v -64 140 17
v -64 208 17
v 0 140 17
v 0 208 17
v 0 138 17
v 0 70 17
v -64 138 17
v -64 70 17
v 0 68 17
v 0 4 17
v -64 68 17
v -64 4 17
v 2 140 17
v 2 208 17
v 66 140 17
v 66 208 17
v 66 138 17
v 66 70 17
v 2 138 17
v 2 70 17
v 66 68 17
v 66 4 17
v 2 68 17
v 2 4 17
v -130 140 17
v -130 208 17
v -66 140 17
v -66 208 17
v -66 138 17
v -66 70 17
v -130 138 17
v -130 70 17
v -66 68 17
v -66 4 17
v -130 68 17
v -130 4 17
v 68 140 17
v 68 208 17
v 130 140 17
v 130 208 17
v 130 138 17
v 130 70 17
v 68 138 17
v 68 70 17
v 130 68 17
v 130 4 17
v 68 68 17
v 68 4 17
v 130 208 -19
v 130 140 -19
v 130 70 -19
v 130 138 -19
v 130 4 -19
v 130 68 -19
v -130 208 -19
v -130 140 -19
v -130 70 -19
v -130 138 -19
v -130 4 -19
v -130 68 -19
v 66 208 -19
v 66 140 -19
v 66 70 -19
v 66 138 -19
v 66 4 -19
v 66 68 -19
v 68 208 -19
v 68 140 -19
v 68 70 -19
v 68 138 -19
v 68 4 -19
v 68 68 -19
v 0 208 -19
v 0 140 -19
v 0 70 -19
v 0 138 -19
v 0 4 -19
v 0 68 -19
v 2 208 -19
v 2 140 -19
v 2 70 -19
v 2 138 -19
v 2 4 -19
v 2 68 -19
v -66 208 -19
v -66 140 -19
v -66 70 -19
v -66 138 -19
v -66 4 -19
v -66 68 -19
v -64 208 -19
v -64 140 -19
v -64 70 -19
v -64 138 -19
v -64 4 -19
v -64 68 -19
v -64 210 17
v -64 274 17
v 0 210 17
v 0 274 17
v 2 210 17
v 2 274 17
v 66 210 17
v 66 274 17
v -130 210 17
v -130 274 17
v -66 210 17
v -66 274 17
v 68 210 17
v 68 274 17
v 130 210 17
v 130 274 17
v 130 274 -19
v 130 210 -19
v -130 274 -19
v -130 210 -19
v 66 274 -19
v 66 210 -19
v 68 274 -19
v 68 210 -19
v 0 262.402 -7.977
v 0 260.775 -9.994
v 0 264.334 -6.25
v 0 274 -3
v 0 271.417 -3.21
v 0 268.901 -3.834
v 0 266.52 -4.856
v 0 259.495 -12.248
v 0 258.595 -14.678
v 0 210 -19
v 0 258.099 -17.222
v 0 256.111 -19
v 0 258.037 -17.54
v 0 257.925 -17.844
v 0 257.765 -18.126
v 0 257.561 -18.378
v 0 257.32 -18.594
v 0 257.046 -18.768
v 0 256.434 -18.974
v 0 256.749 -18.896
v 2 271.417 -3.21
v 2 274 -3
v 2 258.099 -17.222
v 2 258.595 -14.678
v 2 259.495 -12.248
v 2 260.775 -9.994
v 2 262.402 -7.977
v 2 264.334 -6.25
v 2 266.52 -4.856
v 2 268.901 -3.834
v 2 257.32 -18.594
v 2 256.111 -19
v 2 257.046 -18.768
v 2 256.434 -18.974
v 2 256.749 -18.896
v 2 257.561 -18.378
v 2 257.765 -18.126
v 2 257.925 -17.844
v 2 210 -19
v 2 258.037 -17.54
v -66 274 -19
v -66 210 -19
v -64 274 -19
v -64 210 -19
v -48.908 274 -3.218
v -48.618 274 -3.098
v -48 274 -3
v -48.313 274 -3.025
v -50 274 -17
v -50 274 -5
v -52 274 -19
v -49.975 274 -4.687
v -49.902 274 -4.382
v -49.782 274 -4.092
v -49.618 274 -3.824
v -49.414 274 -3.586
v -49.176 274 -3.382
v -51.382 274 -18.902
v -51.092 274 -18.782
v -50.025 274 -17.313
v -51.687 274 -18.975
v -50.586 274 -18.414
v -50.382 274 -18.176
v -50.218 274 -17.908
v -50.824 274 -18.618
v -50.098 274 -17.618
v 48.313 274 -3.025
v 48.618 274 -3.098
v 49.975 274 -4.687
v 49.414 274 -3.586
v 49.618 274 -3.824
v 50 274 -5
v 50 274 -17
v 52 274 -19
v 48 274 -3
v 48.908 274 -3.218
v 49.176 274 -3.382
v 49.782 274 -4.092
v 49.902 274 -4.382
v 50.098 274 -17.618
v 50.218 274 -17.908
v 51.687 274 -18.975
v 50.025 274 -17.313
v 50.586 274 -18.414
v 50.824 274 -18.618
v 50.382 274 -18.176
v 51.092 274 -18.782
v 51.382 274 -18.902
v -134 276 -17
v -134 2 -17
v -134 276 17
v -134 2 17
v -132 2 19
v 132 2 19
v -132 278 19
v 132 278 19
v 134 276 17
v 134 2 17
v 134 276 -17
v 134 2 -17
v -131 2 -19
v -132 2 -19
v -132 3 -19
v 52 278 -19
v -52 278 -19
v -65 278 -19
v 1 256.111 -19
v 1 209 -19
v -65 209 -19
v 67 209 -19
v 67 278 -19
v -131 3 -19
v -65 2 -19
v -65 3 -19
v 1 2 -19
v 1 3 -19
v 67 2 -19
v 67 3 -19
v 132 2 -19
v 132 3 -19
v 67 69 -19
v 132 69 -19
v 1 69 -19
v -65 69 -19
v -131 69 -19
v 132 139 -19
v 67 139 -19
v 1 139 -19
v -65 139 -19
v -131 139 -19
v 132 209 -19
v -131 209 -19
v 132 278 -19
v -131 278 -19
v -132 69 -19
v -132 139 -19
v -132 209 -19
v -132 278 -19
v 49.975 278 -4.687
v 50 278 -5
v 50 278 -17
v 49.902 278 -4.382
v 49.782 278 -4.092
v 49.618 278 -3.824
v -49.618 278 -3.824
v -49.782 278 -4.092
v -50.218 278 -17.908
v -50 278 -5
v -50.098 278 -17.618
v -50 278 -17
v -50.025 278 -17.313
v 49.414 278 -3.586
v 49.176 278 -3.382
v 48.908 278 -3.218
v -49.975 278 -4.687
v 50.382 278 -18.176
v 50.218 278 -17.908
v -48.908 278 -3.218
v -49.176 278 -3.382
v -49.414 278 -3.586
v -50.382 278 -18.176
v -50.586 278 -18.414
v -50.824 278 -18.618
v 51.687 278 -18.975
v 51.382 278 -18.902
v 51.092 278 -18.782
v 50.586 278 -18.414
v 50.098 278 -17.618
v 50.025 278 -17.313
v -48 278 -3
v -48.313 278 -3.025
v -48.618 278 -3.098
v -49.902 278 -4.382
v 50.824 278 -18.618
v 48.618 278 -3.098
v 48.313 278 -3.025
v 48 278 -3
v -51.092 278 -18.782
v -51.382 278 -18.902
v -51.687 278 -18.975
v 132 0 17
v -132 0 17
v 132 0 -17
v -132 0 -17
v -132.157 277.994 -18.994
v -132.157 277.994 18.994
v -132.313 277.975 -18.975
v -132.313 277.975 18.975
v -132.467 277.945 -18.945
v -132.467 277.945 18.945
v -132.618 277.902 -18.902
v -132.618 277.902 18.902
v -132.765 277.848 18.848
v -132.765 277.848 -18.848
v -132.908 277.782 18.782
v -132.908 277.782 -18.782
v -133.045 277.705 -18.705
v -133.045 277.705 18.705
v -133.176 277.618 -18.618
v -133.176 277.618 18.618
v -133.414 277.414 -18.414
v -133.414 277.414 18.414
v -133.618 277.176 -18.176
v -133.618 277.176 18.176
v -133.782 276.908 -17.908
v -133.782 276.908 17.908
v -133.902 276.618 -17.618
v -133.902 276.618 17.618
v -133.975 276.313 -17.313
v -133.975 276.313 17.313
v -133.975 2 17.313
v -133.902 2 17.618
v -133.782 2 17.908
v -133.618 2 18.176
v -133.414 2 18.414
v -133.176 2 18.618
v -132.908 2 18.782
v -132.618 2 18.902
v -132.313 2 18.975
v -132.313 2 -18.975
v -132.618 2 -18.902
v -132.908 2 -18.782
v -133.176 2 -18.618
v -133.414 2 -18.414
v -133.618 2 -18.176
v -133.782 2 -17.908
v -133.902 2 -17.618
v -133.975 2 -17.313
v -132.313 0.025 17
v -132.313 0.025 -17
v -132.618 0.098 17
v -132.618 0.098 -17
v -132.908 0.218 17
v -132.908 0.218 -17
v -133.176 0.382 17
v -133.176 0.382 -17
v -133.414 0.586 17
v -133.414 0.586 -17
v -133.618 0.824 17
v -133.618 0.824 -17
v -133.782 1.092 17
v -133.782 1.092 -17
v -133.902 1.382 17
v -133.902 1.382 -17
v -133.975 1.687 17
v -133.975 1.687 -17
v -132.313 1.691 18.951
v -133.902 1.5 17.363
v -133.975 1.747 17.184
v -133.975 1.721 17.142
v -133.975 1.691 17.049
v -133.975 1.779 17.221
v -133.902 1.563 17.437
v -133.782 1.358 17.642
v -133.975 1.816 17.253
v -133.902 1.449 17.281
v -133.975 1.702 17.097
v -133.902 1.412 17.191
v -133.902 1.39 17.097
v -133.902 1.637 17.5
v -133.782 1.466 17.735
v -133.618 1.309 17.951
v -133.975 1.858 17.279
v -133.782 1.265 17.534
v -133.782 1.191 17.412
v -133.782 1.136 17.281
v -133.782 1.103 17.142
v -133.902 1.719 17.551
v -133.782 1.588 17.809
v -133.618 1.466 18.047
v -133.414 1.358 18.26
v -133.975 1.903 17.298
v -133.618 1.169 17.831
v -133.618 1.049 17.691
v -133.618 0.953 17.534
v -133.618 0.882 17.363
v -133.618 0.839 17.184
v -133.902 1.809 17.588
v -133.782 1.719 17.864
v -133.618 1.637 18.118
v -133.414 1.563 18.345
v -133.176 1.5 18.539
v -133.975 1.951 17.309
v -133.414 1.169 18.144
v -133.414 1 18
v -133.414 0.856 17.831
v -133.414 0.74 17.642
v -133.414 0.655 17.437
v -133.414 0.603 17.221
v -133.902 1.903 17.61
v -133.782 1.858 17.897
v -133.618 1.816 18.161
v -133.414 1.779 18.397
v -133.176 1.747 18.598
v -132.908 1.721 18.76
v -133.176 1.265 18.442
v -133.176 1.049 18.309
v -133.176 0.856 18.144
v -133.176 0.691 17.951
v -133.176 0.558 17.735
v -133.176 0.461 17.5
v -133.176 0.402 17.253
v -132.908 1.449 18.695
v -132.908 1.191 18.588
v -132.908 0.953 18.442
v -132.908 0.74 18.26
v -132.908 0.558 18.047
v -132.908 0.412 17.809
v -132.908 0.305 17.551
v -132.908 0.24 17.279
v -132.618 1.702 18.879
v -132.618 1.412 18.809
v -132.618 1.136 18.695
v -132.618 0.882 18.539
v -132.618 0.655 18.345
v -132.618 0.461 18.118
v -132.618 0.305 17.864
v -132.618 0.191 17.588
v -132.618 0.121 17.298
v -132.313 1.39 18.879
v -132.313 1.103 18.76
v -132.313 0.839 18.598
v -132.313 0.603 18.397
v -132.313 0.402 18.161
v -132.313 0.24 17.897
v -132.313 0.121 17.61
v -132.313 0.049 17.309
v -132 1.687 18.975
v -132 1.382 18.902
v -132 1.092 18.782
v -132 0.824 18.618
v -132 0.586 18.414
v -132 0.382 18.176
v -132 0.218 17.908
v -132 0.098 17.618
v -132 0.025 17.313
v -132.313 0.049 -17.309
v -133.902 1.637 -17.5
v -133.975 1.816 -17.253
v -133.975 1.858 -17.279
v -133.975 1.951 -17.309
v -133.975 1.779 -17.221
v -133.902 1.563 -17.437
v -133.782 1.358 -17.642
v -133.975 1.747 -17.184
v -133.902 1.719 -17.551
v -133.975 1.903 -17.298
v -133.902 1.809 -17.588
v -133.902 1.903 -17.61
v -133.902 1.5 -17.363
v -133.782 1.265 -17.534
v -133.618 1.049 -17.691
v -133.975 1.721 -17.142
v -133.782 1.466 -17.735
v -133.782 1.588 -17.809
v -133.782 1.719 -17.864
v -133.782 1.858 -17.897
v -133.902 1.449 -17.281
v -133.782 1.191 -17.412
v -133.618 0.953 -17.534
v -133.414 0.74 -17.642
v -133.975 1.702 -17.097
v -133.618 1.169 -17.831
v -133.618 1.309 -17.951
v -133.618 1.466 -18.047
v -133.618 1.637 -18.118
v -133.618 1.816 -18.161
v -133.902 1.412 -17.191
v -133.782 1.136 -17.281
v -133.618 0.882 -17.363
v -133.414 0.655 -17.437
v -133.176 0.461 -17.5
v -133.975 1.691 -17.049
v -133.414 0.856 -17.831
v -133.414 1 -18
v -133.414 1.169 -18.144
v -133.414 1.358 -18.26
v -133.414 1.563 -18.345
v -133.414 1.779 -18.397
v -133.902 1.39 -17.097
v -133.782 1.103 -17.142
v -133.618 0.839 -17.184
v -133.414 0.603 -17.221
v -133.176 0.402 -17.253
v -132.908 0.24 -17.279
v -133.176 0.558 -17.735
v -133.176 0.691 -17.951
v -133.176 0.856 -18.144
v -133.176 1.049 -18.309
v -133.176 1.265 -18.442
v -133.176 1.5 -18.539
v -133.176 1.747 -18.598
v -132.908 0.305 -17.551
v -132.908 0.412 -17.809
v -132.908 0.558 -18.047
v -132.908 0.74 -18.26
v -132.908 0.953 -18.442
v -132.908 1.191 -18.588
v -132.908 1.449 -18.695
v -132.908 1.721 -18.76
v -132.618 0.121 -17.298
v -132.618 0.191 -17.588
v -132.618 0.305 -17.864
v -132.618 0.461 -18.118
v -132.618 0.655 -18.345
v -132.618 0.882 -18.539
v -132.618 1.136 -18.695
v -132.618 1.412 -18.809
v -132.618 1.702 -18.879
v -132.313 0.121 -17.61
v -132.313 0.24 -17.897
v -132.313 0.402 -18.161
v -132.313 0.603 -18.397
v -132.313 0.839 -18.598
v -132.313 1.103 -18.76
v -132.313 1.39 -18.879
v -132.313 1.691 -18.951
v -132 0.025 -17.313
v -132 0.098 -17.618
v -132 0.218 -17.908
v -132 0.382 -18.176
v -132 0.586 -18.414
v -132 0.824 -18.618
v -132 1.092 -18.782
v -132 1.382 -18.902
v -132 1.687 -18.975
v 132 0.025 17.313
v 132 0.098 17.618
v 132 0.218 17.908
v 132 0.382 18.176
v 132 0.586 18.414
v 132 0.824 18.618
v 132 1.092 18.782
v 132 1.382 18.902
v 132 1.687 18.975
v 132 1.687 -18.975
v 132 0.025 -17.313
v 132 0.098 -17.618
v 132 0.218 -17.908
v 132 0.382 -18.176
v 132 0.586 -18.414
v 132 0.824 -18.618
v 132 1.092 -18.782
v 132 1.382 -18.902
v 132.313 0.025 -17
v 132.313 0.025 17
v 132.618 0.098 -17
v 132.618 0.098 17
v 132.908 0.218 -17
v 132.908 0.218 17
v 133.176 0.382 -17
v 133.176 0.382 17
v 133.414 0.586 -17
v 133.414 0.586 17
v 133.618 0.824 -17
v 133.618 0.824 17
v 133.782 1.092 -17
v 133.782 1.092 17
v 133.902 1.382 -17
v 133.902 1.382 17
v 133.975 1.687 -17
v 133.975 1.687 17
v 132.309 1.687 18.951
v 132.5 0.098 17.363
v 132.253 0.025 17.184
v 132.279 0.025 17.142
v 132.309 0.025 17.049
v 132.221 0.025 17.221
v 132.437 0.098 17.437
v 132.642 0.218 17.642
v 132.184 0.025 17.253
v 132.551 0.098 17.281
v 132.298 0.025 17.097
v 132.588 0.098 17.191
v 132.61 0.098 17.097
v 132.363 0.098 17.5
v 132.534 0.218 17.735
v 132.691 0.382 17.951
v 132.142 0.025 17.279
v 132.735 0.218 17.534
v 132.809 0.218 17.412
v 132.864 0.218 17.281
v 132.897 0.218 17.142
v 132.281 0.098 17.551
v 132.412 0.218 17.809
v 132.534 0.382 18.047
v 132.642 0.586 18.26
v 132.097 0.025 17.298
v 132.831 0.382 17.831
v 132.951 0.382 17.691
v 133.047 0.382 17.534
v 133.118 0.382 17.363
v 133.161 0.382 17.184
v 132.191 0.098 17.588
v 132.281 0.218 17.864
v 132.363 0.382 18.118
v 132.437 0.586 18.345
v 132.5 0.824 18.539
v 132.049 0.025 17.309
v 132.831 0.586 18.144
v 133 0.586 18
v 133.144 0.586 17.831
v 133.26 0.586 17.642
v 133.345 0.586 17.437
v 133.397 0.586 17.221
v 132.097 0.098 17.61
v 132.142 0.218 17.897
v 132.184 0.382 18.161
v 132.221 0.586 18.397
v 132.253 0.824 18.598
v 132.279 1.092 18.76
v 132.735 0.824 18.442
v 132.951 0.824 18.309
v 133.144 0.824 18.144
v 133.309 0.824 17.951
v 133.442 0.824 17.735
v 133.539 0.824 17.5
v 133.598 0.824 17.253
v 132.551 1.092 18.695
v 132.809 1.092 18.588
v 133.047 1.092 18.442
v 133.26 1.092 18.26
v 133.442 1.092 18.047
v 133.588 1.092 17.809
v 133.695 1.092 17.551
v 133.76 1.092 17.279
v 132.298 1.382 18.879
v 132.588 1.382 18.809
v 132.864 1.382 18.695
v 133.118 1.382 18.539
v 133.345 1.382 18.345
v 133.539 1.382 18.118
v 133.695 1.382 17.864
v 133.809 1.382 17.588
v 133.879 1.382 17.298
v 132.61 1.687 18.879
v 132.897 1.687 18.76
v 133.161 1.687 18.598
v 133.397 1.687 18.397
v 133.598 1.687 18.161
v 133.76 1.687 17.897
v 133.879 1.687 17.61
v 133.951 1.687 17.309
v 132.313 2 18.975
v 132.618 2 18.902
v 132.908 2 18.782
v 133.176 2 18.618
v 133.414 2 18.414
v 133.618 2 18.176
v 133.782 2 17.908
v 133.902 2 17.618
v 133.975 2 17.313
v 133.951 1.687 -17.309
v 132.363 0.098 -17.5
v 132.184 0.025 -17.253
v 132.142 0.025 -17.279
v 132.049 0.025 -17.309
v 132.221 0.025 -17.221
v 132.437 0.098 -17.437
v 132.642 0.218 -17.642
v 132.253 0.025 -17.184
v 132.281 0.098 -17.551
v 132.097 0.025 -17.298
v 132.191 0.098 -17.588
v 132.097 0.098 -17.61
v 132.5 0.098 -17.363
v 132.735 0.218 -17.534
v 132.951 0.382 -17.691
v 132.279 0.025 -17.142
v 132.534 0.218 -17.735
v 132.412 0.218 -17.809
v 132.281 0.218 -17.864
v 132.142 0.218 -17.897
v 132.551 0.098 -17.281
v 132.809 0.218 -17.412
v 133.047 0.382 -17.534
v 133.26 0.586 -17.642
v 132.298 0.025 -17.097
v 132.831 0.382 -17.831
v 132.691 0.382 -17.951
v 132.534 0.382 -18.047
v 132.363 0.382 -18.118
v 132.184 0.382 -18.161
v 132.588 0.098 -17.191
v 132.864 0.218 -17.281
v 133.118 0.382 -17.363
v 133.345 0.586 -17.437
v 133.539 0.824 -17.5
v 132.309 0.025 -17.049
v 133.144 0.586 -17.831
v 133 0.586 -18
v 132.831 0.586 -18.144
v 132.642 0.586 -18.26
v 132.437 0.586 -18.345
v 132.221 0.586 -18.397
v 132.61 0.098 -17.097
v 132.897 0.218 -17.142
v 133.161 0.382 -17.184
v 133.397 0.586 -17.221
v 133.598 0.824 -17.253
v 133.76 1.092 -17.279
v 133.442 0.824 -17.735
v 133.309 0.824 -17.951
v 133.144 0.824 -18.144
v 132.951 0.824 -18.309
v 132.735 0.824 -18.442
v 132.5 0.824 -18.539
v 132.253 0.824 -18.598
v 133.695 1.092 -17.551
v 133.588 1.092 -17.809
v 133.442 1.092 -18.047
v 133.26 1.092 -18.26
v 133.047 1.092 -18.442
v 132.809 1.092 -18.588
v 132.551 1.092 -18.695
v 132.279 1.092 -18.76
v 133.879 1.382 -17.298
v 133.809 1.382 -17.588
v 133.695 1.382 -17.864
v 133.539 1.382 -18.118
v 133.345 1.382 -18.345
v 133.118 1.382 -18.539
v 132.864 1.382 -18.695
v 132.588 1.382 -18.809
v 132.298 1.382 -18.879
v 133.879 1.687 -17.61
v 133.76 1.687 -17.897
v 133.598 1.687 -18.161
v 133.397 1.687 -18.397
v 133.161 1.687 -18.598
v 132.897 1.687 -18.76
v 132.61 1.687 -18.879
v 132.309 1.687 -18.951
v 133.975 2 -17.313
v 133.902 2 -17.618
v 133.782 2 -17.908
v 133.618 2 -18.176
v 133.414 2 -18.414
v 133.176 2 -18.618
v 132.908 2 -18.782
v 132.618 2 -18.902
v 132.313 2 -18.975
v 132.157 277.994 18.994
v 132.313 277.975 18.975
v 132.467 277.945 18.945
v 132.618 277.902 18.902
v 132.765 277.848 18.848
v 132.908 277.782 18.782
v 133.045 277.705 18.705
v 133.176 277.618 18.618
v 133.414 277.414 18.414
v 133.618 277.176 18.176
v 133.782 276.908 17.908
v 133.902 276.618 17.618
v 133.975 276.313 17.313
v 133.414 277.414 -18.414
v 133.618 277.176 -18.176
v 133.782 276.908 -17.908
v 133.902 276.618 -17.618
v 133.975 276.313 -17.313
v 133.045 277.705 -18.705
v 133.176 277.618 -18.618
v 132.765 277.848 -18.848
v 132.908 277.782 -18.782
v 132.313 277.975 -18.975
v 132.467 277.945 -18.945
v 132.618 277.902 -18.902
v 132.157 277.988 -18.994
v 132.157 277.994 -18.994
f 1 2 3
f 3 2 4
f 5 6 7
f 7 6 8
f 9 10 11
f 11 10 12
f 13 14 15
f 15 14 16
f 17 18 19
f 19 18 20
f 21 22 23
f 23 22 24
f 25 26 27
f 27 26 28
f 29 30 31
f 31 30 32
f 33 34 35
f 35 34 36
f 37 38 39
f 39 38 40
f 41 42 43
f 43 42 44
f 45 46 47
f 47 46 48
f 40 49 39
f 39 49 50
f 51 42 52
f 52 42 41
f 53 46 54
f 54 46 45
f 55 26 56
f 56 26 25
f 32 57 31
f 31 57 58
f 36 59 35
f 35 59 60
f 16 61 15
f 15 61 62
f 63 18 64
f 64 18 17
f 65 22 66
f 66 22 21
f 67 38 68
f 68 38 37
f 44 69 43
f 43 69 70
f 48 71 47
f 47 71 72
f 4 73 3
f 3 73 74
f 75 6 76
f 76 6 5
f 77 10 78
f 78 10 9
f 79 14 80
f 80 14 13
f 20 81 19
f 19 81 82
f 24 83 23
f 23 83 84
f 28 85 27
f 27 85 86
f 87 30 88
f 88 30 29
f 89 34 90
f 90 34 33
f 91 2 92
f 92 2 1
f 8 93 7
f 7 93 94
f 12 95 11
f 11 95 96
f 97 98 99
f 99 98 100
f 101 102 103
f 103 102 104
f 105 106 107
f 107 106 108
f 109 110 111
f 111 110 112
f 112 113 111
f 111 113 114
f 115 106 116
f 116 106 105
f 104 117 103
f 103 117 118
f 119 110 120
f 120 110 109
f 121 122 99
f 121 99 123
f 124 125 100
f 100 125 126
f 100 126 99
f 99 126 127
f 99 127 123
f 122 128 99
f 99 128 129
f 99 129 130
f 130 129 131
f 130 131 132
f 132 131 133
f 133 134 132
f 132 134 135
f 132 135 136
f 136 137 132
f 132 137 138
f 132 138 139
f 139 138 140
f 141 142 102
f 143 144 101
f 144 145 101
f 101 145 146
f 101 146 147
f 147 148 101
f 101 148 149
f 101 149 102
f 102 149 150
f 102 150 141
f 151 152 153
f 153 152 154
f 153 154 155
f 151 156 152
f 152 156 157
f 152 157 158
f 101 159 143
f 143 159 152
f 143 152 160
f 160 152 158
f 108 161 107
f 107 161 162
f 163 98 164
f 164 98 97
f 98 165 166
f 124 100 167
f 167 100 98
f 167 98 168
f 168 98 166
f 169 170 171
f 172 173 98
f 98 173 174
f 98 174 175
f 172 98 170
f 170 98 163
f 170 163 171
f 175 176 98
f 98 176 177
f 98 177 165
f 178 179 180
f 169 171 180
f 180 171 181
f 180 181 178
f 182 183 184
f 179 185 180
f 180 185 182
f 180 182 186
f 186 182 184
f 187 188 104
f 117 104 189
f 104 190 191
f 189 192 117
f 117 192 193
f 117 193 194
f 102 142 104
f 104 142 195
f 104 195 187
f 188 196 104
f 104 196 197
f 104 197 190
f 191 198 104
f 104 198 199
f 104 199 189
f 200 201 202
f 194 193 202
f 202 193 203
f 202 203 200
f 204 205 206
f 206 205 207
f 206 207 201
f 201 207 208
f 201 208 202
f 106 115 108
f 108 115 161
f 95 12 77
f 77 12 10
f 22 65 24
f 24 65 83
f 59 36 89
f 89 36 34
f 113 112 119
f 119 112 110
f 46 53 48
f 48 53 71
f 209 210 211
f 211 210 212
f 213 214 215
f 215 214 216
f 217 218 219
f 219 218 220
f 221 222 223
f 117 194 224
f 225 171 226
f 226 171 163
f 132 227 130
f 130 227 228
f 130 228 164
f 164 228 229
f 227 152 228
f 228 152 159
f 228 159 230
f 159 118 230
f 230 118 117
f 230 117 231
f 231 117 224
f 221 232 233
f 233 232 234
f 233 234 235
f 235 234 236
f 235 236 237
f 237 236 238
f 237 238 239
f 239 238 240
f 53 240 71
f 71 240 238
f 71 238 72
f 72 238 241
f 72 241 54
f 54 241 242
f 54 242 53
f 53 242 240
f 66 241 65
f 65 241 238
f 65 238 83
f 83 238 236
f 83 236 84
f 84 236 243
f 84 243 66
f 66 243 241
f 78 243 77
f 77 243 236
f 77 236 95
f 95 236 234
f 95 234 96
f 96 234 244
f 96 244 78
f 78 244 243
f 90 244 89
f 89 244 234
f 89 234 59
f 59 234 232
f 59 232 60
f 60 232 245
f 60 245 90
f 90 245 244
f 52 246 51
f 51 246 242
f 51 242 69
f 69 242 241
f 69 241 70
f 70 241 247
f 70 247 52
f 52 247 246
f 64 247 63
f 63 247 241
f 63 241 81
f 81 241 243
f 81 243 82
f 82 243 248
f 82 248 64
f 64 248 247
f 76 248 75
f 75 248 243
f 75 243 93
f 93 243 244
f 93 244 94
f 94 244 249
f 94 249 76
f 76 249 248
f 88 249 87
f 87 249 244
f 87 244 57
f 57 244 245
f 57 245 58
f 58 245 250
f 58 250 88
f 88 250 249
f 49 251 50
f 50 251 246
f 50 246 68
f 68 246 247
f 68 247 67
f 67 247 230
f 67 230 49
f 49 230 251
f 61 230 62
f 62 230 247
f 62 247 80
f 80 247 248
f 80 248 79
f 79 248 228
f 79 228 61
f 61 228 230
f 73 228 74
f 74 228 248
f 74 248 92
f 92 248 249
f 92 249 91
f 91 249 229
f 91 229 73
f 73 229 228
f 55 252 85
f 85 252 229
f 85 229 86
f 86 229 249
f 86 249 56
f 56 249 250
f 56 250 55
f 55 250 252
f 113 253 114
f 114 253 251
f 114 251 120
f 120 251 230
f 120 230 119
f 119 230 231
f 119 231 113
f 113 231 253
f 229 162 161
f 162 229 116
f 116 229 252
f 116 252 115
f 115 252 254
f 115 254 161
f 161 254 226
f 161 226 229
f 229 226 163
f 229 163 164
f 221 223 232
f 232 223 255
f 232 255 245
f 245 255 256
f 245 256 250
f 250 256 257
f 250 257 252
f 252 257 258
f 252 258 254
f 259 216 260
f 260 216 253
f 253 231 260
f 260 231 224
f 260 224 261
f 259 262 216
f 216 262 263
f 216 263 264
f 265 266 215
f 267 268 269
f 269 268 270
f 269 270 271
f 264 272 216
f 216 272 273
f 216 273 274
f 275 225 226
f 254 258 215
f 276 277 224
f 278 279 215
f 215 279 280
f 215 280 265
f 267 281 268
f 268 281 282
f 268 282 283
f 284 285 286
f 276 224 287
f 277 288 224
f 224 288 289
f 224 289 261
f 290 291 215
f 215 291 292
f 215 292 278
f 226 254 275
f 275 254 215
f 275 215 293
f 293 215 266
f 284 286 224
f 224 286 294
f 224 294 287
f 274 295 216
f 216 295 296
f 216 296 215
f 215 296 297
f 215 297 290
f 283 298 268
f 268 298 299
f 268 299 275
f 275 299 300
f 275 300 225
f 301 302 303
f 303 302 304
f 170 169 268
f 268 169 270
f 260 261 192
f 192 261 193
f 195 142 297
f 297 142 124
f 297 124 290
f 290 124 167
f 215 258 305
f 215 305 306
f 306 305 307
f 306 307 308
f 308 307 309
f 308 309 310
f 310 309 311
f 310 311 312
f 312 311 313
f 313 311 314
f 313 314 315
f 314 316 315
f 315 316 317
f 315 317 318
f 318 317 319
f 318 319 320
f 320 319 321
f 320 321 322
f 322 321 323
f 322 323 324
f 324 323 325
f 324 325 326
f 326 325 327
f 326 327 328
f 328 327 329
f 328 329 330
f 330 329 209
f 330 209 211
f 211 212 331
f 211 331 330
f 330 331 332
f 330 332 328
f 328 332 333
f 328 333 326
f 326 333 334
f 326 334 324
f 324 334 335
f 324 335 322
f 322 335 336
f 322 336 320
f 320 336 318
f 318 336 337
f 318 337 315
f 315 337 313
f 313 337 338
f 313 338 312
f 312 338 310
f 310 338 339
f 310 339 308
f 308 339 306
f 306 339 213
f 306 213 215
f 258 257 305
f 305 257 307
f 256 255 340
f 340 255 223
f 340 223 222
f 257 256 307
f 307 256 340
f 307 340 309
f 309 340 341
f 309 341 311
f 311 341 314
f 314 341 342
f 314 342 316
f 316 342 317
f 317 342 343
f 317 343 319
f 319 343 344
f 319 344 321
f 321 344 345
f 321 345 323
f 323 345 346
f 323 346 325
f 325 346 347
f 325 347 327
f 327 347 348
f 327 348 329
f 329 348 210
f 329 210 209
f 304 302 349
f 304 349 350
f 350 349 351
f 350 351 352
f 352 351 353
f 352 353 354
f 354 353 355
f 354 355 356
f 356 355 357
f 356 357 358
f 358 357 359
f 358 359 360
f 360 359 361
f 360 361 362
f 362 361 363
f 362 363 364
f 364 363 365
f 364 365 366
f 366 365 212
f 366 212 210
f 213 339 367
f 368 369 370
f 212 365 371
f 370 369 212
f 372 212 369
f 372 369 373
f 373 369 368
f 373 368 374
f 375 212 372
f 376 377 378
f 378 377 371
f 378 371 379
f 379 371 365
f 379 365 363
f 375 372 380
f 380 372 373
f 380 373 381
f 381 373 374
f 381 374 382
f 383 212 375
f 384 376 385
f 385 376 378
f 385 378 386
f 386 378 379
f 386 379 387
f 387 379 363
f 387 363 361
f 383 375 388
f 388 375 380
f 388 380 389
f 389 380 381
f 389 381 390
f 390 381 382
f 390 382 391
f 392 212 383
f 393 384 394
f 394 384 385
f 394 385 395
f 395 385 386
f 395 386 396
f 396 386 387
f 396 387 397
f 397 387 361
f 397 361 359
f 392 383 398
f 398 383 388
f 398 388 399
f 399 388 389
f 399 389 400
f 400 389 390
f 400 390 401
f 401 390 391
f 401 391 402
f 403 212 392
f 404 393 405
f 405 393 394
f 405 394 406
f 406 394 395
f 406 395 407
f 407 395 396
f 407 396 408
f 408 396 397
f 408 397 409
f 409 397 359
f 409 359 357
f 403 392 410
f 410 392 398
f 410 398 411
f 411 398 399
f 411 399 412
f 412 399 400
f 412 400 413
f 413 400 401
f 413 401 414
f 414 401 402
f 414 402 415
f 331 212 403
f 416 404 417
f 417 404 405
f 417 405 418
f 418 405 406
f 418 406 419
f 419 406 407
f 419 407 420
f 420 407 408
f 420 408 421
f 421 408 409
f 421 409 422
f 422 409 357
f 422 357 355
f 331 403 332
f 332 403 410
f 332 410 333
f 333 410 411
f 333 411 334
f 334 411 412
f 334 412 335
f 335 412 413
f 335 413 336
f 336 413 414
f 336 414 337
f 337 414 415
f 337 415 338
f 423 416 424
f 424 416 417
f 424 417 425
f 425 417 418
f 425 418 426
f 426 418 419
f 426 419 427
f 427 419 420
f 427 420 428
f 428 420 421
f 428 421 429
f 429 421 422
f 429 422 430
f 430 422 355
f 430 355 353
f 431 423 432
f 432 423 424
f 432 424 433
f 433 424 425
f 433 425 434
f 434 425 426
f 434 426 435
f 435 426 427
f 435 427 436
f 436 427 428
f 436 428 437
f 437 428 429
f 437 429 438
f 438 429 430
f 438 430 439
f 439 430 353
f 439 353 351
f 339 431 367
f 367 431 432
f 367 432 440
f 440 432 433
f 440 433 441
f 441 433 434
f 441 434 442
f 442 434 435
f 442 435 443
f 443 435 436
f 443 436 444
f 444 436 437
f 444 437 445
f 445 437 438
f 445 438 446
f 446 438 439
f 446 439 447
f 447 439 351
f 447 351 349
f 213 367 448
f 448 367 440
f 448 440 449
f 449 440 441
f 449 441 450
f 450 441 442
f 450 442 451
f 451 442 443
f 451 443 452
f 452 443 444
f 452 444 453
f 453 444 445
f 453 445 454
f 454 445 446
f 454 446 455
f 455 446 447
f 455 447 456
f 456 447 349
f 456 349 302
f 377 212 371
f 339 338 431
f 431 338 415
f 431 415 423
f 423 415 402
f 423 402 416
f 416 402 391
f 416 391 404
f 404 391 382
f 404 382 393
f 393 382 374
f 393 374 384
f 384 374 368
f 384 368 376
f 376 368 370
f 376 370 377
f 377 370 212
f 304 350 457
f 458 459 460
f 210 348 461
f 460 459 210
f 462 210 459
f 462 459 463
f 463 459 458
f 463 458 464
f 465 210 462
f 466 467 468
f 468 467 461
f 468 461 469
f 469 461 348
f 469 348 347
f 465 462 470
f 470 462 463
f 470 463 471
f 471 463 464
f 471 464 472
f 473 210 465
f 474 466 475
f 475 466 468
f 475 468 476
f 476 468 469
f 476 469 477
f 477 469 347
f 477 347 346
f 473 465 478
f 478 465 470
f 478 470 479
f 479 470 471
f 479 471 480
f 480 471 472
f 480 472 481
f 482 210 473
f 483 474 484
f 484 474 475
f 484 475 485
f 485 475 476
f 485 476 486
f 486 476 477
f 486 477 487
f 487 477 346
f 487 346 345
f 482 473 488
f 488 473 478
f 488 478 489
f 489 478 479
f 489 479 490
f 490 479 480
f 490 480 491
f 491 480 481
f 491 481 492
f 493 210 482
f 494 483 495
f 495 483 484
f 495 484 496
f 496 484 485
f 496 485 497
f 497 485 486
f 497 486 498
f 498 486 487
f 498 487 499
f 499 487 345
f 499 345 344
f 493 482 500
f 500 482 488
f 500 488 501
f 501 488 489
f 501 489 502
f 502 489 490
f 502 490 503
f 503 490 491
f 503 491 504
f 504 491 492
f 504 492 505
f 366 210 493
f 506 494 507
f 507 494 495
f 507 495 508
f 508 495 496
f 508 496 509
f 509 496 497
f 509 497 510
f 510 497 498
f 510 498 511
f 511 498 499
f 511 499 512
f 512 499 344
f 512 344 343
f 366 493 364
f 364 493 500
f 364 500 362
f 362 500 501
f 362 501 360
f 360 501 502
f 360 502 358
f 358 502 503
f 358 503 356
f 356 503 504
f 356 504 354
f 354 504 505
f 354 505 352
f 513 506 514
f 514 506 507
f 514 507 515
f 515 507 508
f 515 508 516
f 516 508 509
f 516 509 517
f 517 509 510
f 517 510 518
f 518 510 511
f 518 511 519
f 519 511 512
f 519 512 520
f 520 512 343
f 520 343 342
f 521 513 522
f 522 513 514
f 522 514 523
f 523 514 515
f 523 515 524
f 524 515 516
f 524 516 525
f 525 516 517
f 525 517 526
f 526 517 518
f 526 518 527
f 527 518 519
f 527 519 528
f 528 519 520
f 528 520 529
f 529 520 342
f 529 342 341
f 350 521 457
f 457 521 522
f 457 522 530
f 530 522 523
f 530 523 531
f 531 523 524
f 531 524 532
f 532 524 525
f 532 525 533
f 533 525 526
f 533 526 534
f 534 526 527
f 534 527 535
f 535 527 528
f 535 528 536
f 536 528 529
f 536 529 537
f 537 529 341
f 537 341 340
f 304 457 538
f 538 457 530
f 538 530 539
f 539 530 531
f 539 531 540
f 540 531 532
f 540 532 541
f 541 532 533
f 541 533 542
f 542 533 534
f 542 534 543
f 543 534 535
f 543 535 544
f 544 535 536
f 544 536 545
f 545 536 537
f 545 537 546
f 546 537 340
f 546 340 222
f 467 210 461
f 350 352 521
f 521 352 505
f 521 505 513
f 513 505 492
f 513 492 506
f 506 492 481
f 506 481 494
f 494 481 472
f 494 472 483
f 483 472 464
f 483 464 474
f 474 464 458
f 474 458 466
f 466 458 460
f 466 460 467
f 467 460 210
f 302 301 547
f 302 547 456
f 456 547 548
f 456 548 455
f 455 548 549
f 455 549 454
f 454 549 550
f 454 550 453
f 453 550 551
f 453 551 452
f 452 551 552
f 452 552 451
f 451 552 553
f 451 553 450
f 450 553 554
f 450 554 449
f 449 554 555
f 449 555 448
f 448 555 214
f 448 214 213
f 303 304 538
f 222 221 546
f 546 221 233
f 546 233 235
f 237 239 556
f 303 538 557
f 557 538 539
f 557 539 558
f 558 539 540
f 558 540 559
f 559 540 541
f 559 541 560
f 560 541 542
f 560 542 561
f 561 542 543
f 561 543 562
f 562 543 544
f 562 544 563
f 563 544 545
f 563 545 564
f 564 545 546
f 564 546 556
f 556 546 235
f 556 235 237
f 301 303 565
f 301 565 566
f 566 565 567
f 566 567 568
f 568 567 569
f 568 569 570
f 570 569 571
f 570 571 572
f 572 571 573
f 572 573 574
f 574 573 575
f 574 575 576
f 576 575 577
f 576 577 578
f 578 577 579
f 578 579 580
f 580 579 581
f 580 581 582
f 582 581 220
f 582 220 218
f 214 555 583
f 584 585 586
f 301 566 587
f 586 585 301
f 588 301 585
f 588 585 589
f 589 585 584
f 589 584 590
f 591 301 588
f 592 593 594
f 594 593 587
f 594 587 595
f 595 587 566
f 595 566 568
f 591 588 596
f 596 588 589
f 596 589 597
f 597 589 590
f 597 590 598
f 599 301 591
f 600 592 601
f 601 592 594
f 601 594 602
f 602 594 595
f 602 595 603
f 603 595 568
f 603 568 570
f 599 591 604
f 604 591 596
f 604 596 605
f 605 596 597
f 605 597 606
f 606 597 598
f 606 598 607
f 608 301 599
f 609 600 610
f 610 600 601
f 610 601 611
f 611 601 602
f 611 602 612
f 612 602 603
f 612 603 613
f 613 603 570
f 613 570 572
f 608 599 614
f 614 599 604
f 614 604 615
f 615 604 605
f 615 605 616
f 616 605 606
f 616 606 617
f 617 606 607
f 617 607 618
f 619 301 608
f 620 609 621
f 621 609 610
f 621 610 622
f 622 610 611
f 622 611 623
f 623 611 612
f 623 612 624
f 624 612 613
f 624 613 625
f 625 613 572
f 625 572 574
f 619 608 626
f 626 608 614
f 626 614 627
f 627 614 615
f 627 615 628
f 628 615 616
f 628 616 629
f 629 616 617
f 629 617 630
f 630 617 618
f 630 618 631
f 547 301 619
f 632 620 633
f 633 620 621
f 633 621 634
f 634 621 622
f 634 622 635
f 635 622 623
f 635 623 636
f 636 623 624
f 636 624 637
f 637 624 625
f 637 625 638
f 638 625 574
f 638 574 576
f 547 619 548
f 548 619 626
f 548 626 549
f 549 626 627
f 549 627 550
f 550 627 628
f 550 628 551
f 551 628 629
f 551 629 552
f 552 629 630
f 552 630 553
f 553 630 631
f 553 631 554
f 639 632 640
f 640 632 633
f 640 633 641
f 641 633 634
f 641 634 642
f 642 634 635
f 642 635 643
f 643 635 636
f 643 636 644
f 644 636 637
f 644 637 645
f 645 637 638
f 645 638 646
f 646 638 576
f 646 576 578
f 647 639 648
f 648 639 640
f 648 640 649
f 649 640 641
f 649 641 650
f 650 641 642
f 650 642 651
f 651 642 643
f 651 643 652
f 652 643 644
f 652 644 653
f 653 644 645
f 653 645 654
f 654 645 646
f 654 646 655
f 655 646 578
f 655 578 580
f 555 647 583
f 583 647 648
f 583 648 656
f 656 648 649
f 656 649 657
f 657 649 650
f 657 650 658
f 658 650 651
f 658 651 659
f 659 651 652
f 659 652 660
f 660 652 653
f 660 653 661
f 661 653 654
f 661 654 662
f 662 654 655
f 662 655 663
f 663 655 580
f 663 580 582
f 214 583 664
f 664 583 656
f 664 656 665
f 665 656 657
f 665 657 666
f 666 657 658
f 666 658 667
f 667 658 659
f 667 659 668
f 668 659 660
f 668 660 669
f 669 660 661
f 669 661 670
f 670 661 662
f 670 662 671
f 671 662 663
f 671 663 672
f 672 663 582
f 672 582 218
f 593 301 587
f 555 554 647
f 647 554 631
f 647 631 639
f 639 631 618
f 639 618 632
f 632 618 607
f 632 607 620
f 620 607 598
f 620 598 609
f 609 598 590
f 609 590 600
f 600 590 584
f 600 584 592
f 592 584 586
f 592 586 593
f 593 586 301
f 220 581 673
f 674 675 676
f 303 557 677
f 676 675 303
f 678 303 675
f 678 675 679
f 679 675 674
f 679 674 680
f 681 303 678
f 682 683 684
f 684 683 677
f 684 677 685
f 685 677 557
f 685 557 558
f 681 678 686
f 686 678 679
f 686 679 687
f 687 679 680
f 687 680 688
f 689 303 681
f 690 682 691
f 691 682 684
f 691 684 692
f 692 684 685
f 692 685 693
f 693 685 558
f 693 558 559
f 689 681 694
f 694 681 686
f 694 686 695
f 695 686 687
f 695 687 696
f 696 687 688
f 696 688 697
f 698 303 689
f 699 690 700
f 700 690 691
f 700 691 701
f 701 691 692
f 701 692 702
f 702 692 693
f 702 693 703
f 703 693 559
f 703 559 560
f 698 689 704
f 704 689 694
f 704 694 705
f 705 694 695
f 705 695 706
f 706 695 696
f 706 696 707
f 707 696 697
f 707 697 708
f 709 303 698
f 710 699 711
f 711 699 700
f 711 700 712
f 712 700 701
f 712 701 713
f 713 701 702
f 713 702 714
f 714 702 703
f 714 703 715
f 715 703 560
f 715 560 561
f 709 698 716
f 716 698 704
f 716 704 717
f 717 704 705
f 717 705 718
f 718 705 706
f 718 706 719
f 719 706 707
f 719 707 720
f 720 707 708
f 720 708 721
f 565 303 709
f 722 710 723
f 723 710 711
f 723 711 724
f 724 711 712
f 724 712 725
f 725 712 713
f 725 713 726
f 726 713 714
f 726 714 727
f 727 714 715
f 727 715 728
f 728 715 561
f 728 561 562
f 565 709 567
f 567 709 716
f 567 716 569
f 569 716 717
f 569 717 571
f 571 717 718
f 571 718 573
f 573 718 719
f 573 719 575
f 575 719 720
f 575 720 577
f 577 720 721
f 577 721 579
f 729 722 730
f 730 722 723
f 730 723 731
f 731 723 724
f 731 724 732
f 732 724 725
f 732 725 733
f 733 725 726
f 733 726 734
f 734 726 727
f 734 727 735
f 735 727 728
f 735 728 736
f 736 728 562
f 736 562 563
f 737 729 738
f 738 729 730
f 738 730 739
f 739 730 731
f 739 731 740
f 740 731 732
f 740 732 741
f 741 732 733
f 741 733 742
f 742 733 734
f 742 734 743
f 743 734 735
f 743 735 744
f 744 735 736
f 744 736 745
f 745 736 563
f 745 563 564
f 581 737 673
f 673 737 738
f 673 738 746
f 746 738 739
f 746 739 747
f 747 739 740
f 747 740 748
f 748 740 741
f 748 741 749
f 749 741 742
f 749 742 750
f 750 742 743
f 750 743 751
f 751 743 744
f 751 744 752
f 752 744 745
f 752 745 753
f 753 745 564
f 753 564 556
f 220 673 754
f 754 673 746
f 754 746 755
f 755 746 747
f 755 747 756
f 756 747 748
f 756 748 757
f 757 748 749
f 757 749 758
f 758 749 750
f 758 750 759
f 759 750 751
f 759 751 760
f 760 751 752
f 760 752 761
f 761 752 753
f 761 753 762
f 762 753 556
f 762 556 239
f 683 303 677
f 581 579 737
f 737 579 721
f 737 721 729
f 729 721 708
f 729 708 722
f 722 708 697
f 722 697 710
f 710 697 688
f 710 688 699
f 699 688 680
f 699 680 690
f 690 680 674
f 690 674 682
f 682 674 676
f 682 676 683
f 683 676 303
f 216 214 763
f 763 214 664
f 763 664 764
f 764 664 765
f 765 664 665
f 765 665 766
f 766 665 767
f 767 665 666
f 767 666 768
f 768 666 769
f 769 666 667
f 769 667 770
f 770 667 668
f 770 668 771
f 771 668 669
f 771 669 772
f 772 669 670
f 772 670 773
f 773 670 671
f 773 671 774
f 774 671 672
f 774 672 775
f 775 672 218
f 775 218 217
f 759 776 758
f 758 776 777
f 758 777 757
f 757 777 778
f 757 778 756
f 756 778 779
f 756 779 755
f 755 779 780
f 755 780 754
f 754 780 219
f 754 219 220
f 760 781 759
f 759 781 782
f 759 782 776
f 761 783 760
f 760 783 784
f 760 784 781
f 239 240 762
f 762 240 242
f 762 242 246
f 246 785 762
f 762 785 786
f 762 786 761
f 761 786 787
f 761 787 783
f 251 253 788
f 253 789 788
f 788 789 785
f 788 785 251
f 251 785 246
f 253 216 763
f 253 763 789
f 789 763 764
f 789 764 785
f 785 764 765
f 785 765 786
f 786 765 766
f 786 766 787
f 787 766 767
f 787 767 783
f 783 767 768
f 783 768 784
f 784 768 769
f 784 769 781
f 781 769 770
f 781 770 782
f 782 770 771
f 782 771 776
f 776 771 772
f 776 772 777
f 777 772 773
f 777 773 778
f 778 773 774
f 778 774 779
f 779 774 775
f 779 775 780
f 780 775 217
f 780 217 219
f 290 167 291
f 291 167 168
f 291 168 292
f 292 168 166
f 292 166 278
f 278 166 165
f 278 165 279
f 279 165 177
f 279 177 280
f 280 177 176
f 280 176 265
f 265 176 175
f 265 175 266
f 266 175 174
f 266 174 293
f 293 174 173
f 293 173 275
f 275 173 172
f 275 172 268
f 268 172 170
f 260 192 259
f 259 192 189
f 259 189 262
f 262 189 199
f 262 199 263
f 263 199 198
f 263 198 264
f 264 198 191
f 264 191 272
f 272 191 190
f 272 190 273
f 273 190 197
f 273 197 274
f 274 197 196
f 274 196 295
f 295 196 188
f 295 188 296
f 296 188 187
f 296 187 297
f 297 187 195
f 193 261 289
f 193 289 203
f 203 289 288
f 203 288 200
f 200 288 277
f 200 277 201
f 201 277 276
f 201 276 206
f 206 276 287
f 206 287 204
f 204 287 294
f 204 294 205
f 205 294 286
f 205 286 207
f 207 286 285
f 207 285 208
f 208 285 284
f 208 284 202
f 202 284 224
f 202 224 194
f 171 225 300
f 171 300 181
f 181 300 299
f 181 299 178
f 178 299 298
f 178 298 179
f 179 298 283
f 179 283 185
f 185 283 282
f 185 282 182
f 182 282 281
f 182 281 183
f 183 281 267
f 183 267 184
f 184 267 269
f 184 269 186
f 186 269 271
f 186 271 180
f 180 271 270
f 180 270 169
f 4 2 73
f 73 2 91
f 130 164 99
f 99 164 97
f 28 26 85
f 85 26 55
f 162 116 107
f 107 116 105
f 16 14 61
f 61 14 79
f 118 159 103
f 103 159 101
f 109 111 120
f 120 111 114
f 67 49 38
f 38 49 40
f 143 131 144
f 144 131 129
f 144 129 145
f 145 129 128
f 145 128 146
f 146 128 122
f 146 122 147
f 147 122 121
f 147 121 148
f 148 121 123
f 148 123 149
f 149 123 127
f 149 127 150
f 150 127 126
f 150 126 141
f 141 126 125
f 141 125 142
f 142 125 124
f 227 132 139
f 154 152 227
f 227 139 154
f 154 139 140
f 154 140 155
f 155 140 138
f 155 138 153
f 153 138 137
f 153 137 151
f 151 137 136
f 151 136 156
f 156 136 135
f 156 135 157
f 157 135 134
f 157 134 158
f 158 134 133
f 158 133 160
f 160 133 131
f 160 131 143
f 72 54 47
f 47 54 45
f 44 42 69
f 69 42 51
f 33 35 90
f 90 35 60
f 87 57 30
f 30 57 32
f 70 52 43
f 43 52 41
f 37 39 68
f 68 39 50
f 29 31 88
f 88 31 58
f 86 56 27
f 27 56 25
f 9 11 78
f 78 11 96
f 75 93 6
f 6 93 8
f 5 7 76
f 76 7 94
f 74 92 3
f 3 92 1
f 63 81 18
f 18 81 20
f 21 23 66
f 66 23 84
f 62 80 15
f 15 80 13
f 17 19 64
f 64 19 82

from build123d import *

# Parameters (mm, degrees)
SKETCH_1_W             = 268
SKETCH_1_H             = 38
EXTRUDE_1_DEPTH        = 278
SKETCH_2_W             = 260
SKETCH_2_H             = 270
CUT_EXTRUDE_1_DEPTH    = 36
CUT_EXTRUDE_2_REACH    = 311.194
SKETCH_3_W             = 100
SKETCH_3_H             = 16
FILLET_1_R             = 2
SKETCH_4_W             = 2
SKETCH_4_H             = 270
EXTRUDE_2_DEPTH        = 36
PATTERN_LINEAR_1_COUNT = 3
PATTERN_LINEAR_1_PITCH = 66
SKETCH_5_W             = 260
SKETCH_5_H             = 2
EXTRUDE_3_DEPTH        = 36
CUT_EXTRUDE_4_DEPTH    = 2
FILLET_2_R             = 2
PATTERN_LINEAR_2_COUNT = 3
PATTERN_LINEAR_2_PITCH = 70


with BuildPart() as part:
    # 草图1 → 凸台-拉伸1 (new body)
    with BuildSketch(Plane(origin=(0, 0, 0), x_dir=(1, 0, 0), z_dir=(0, 1, 0))):
        Rectangle(SKETCH_1_W, SKETCH_1_H)
    extrude(amount=EXTRUDE_1_DEPTH)

    # 草图2 → 切除-拉伸1 (cut)
    with BuildSketch(Plane(origin=(0, 0, -19), x_dir=(-1, 0, 0), z_dir=(0, 0, -1))):
        with Locations((0, 139)):
            Rectangle(SKETCH_2_W, SKETCH_2_H)
    extrude(amount=-CUT_EXTRUDE_1_DEPTH, mode=Mode.SUBTRACT)

    # 草图3 → 切除-拉伸2 (cut, up to next)
    with BuildSketch(Plane(origin=(0, 278, 0), x_dir=(1, 0, 0), z_dir=(0, 1, 0)), mode=Mode.PRIVATE) as cut_extrude_2_sk1:
        with Locations((0, 11)):
            Rectangle(SKETCH_3_W, SKETCH_3_H)
    cut_extrude_2_tool1 = extrude(cut_extrude_2_sk1.sketch, amount=-CUT_EXTRUDE_2_REACH, mode=Mode.PRIVATE) & part.part
    add(cut_extrude_2_tool1.solids().sort_by_distance((0, 278, -11))[0], mode=Mode.SUBTRACT)

    # 圆角1
    fillet_1_edges = [part.edges().sort_by_distance(p)[0] for p in [
        (134, 278, 0),
        (-50, 276, -3),
        (-50, 276, -19),
        (50, 276, -19),
        (50, 276, -3),
        (-134, 278, 0),
        (0, 0, -19),
        (134, 0, 0),
        (0, 0, 19),
        (-134, 0, 0),
        (-134, 139, -19),
        (134, 139, -19),
        (134, 139, 19),
        (-134, 139, 19),
    ]]
    fillet(fillet_1_edges, radius=FILLET_1_R)

    # 草图4 → 凸台-拉伸2 (add)
    with BuildSketch(Plane(origin=(0, 0, 17), x_dir=(-1, 0, 0), z_dir=(0, 0, -1))):
        with Locations((-67, 139)):
            Rectangle(SKETCH_4_W, SKETCH_4_H)
    extrude_2 = extrude(amount=EXTRUDE_2_DEPTH)

    # 阵列(线性)1: 凸台-拉伸2 ×3
    with Locations(*[(-i * PATTERN_LINEAR_1_PITCH, 0, 0) for i in range(1, PATTERN_LINEAR_1_COUNT)]):
        add(extrude_2)

    # 草图5 → 凸台-拉伸3 (add)
    with BuildSketch(Plane(origin=(0, 0, 17), x_dir=(-1, 0, 0), z_dir=(0, 0, -1))):
        with Locations((0, 209)):
            Rectangle(SKETCH_5_W, SKETCH_5_H)
    extrude_3 = extrude(amount=EXTRUDE_3_DEPTH)

    # 草图7 → 切除-拉伸4 (cut)
    with BuildSketch(Plane.ZY):
        with BuildLine():
            Line((-19, 274), (-19, 258))
            ThreePointArc((-19, 258), (-7.686291501, 262.686291501), (-3, 274))
            Line((-3, 274), (-19, 274))
        make_face()
    extrude(amount=-CUT_EXTRUDE_4_DEPTH, mode=Mode.SUBTRACT)

    # 圆角2
    fillet_2_edges = [part.edges().sort_by_distance(p)[0] for p in [
        (1, 258, -19),
    ]]
    fillet(fillet_2_edges, radius=FILLET_2_R)

    # 阵列(线性)2: 凸台-拉伸3 ×3
    with Locations(*[(0, -i * PATTERN_LINEAR_2_PITCH, 0) for i in range(1, PATTERN_LINEAR_2_COUNT)]):
        add(extrude_3)


solid = part.part
